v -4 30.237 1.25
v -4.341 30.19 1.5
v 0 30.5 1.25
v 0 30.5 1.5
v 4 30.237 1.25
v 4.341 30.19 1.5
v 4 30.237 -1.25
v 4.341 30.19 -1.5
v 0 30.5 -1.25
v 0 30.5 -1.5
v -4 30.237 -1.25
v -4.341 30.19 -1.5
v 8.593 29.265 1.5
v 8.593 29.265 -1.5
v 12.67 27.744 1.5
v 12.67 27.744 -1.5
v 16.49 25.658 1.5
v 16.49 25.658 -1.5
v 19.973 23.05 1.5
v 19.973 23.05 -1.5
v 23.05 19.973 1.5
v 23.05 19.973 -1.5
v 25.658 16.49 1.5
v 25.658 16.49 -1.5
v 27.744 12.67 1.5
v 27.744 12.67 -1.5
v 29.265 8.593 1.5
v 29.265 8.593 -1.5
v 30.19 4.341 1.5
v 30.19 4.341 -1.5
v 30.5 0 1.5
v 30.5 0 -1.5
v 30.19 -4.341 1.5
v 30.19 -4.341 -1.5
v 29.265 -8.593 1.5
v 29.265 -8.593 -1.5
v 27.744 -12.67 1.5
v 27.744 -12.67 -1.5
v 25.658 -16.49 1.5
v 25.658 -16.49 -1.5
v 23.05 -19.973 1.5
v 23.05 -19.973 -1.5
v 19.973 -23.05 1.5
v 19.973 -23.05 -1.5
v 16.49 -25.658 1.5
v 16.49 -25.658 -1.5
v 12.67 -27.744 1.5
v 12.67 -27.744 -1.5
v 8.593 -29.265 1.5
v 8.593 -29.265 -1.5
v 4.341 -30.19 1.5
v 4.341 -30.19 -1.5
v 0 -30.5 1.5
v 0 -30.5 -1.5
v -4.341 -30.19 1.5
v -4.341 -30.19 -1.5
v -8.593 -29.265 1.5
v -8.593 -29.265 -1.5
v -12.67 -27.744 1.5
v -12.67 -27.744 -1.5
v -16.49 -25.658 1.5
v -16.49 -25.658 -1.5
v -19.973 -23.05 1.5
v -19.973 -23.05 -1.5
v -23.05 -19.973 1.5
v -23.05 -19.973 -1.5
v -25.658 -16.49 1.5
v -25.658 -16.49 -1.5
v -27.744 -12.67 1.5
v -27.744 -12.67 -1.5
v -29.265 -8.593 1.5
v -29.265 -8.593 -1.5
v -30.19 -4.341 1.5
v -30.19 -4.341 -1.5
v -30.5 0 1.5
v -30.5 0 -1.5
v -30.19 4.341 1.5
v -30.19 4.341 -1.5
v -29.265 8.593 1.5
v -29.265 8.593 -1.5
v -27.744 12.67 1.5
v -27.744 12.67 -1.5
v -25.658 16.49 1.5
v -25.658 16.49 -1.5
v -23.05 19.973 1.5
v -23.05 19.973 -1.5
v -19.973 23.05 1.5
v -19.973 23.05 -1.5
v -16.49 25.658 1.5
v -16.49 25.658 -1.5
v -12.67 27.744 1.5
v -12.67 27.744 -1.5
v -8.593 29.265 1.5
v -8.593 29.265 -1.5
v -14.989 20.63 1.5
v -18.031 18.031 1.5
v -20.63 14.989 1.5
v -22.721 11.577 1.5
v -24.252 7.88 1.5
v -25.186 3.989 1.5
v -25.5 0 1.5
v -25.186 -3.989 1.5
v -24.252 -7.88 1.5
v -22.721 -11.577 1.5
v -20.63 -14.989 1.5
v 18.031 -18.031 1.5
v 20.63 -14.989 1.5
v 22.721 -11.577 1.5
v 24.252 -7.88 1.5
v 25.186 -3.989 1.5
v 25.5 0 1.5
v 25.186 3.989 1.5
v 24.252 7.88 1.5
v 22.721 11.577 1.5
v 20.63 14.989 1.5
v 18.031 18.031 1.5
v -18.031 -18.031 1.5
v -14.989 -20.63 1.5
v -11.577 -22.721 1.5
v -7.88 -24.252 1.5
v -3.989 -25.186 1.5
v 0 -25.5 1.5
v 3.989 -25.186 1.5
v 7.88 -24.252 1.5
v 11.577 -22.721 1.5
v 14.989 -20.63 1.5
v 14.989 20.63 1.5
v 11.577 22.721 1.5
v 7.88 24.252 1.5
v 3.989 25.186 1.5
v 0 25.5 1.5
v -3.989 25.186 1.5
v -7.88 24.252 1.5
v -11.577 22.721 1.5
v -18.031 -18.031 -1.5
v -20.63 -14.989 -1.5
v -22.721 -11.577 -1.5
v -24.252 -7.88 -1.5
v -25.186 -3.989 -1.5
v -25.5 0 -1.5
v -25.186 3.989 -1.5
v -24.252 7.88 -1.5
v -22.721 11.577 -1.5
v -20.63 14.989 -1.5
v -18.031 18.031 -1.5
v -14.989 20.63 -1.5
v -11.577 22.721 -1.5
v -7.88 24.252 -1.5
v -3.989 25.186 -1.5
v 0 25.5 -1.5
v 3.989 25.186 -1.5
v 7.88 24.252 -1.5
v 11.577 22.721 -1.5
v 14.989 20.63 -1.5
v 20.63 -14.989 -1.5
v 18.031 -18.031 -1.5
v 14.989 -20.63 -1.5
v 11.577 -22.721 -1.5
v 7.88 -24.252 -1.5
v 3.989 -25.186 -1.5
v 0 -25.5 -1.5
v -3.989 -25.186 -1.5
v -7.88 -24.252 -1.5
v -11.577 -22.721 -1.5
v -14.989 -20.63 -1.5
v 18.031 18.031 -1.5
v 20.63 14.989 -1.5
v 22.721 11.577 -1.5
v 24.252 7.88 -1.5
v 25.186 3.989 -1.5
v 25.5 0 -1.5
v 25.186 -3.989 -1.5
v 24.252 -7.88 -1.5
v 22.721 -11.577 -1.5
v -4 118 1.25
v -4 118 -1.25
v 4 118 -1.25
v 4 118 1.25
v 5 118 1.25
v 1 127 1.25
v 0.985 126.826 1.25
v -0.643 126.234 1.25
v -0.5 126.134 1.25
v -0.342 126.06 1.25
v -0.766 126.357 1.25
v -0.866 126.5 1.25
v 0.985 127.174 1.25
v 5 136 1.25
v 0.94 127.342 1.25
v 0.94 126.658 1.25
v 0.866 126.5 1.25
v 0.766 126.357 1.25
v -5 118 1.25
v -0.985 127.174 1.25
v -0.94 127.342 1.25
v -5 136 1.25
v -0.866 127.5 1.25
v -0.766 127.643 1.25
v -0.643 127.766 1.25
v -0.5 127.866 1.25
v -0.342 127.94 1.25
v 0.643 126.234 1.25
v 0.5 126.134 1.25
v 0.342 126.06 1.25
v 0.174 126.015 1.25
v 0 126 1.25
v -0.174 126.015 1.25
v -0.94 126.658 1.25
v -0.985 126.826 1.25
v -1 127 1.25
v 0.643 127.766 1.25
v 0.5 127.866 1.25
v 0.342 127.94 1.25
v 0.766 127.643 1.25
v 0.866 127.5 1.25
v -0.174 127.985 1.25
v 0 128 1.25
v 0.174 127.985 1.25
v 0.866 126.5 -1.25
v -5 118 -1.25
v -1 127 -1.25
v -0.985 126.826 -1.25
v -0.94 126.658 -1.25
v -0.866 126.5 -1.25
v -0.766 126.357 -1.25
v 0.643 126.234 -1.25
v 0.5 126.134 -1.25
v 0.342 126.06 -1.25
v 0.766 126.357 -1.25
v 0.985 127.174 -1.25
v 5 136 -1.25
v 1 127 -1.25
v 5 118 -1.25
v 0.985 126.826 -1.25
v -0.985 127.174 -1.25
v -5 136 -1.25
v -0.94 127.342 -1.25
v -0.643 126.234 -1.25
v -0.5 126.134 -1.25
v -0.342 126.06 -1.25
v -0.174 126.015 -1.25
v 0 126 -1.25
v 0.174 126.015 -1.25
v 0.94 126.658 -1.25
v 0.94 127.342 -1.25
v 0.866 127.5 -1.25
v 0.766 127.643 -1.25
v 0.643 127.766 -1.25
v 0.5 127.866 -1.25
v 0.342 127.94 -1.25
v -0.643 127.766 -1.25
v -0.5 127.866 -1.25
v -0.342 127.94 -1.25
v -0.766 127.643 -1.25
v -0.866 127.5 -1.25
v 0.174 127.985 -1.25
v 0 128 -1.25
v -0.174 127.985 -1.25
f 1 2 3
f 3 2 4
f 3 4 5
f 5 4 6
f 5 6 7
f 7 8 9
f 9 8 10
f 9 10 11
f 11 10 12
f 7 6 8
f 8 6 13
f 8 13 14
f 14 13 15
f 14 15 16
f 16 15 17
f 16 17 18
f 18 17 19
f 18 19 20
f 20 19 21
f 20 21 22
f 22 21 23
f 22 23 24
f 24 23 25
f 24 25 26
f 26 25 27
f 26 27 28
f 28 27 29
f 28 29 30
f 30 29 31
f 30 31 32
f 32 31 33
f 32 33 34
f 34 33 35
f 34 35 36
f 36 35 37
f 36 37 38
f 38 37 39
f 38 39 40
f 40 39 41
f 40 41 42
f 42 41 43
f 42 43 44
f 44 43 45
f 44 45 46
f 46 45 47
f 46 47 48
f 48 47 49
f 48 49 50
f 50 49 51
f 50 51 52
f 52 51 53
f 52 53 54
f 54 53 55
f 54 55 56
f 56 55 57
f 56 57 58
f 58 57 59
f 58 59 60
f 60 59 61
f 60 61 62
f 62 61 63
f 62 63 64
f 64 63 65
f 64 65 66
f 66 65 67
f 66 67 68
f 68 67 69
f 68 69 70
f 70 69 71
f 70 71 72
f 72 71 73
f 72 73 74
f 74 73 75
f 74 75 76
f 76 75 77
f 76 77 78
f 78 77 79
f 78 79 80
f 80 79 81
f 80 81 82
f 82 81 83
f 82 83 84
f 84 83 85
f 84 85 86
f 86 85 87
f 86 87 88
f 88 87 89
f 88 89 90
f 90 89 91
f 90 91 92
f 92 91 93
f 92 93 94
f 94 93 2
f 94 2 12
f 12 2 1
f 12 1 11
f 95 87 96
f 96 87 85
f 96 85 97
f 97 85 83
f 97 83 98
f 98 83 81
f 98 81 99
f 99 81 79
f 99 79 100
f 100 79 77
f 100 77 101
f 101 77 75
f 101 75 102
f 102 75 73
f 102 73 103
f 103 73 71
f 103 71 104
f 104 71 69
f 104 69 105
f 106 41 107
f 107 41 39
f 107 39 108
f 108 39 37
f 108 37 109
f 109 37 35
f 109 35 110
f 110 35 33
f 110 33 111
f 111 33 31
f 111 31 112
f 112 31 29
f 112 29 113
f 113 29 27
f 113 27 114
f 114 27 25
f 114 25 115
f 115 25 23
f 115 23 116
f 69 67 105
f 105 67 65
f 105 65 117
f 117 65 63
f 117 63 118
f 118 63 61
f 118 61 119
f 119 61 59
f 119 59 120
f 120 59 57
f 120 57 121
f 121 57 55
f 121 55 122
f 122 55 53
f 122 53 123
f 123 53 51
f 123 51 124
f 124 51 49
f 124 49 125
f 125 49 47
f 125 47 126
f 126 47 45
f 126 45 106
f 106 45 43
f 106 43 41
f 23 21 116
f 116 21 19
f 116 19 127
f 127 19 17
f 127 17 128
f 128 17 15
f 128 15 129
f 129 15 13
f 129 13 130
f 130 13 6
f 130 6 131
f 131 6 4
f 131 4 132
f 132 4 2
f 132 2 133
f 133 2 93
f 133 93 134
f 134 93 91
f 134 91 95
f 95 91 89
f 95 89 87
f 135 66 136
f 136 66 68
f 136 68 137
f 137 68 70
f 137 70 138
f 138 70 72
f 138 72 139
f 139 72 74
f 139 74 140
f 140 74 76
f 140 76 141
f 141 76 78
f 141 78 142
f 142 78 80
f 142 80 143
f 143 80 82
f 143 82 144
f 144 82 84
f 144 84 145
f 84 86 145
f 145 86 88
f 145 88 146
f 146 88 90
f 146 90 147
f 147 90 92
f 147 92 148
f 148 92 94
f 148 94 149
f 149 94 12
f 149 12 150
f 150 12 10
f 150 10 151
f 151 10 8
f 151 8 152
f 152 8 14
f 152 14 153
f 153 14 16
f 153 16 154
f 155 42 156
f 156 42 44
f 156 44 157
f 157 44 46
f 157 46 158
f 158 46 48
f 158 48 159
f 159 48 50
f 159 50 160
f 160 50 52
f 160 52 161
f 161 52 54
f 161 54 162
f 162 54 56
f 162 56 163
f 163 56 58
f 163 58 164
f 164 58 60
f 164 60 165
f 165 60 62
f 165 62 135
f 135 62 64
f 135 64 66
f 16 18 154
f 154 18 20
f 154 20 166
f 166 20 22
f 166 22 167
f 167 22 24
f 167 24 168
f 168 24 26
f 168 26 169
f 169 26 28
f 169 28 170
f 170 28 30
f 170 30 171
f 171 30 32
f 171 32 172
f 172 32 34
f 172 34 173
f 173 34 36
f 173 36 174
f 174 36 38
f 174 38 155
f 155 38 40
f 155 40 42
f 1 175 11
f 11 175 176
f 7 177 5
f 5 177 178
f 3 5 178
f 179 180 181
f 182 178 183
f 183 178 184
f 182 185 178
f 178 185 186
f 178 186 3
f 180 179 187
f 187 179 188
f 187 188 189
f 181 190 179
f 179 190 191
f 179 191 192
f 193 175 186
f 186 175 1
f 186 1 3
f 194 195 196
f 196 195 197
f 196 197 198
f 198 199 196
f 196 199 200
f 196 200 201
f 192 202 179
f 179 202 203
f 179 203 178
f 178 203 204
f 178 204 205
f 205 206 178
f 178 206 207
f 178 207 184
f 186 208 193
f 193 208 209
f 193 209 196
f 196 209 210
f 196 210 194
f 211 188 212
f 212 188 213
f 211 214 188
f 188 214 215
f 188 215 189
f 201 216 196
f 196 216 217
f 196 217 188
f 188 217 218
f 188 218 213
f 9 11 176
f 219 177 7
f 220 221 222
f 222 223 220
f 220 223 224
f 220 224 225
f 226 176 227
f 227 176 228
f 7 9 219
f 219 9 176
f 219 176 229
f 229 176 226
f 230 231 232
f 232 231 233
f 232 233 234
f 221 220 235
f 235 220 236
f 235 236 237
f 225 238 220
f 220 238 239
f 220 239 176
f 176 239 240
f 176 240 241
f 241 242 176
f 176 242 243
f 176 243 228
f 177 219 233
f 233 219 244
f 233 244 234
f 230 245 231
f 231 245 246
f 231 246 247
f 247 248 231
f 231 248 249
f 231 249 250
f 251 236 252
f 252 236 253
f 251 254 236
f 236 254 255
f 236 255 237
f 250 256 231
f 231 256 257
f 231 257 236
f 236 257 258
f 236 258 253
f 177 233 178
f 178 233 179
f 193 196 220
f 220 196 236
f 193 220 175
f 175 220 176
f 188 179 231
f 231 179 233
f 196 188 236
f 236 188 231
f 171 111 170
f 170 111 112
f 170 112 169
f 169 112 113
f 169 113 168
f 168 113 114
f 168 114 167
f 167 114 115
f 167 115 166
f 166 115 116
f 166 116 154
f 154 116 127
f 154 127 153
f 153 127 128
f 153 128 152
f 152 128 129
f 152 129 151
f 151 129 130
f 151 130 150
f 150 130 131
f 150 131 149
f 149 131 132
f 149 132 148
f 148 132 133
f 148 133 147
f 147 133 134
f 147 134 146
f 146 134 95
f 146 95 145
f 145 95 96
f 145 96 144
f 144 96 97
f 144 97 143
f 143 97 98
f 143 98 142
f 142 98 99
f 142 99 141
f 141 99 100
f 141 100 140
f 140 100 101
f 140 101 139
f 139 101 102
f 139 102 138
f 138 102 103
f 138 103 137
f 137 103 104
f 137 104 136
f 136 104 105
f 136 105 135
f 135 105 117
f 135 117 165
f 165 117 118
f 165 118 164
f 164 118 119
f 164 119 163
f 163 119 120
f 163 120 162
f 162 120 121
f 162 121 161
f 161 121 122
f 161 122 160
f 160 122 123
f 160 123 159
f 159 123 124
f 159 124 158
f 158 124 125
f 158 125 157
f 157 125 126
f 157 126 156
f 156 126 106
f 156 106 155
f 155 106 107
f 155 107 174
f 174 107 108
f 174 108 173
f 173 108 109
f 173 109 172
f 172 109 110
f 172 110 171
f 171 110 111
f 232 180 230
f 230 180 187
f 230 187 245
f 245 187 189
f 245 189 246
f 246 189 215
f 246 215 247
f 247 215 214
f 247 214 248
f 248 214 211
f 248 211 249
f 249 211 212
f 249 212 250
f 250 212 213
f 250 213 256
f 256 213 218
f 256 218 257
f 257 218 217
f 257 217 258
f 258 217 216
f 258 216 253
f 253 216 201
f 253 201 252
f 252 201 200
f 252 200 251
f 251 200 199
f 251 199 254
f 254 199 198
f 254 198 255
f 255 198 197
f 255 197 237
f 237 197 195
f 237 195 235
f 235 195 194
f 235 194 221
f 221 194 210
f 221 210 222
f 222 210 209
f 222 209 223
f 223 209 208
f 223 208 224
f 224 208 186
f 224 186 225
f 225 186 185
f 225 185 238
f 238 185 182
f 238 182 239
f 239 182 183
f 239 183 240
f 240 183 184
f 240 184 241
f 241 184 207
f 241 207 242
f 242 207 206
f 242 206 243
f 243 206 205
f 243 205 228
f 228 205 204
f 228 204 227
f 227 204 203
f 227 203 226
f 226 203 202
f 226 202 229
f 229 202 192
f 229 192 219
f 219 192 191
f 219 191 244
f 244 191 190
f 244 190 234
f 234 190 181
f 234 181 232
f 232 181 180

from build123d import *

# Parameters (mm, degrees)
SKETCH1_R           = 30.5
BOSS_EXTRUDE1_DEPTH = 1.5
SKETCH2_W           = 8
SKETCH2_H           = 93
BOSS_EXTRUDE2_DEPTH = 1.25
SKETCH3_W           = 10
SKETCH3_H           = 18
BOSS_EXTRUDE3_DEPTH = 1.25
SKETCH4_R           = 25.5
CUT_EXTRUDE1_DEPTH  = 10
SKETCH5_R           = 1
CUT_EXTRUDE2_DEPTH  = 10


with BuildPart() as part:
    # Sketch1 → Boss-Extrude1 (new, symmetric)
    with BuildSketch(Plane.XY):
        Circle(SKETCH1_R)
    extrude(amount=BOSS_EXTRUDE1_DEPTH, both=True)

    # Sketch2 → Boss-Extrude2 (add, symmetric)
    with BuildSketch(Plane.XY):
        with Locations((0, 71.5)):
            Rectangle(SKETCH2_W, SKETCH2_H)
    extrude(amount=BOSS_EXTRUDE2_DEPTH, both=True)

    # Sketch3 → Boss-Extrude3 (add, symmetric)
    with BuildSketch(Plane.XY):
        with Locations((0, 127)):
            Rectangle(SKETCH3_W, SKETCH3_H)
    extrude(amount=BOSS_EXTRUDE3_DEPTH, both=True)

    # Sketch4 → Cut-Extrude1 (cut, symmetric)
    with BuildSketch(Plane.XY):
        Circle(SKETCH4_R)
    extrude(amount=CUT_EXTRUDE1_DEPTH, both=True, mode=Mode.SUBTRACT)

    # Sketch5 → Cut-Extrude2 (cut, symmetric)
    with BuildSketch(Plane.XY):
        with Locations((0, 127)):
            Circle(SKETCH5_R)
    extrude(amount=CUT_EXTRUDE2_DEPTH, both=True, mode=Mode.SUBTRACT)


solid = part.part
